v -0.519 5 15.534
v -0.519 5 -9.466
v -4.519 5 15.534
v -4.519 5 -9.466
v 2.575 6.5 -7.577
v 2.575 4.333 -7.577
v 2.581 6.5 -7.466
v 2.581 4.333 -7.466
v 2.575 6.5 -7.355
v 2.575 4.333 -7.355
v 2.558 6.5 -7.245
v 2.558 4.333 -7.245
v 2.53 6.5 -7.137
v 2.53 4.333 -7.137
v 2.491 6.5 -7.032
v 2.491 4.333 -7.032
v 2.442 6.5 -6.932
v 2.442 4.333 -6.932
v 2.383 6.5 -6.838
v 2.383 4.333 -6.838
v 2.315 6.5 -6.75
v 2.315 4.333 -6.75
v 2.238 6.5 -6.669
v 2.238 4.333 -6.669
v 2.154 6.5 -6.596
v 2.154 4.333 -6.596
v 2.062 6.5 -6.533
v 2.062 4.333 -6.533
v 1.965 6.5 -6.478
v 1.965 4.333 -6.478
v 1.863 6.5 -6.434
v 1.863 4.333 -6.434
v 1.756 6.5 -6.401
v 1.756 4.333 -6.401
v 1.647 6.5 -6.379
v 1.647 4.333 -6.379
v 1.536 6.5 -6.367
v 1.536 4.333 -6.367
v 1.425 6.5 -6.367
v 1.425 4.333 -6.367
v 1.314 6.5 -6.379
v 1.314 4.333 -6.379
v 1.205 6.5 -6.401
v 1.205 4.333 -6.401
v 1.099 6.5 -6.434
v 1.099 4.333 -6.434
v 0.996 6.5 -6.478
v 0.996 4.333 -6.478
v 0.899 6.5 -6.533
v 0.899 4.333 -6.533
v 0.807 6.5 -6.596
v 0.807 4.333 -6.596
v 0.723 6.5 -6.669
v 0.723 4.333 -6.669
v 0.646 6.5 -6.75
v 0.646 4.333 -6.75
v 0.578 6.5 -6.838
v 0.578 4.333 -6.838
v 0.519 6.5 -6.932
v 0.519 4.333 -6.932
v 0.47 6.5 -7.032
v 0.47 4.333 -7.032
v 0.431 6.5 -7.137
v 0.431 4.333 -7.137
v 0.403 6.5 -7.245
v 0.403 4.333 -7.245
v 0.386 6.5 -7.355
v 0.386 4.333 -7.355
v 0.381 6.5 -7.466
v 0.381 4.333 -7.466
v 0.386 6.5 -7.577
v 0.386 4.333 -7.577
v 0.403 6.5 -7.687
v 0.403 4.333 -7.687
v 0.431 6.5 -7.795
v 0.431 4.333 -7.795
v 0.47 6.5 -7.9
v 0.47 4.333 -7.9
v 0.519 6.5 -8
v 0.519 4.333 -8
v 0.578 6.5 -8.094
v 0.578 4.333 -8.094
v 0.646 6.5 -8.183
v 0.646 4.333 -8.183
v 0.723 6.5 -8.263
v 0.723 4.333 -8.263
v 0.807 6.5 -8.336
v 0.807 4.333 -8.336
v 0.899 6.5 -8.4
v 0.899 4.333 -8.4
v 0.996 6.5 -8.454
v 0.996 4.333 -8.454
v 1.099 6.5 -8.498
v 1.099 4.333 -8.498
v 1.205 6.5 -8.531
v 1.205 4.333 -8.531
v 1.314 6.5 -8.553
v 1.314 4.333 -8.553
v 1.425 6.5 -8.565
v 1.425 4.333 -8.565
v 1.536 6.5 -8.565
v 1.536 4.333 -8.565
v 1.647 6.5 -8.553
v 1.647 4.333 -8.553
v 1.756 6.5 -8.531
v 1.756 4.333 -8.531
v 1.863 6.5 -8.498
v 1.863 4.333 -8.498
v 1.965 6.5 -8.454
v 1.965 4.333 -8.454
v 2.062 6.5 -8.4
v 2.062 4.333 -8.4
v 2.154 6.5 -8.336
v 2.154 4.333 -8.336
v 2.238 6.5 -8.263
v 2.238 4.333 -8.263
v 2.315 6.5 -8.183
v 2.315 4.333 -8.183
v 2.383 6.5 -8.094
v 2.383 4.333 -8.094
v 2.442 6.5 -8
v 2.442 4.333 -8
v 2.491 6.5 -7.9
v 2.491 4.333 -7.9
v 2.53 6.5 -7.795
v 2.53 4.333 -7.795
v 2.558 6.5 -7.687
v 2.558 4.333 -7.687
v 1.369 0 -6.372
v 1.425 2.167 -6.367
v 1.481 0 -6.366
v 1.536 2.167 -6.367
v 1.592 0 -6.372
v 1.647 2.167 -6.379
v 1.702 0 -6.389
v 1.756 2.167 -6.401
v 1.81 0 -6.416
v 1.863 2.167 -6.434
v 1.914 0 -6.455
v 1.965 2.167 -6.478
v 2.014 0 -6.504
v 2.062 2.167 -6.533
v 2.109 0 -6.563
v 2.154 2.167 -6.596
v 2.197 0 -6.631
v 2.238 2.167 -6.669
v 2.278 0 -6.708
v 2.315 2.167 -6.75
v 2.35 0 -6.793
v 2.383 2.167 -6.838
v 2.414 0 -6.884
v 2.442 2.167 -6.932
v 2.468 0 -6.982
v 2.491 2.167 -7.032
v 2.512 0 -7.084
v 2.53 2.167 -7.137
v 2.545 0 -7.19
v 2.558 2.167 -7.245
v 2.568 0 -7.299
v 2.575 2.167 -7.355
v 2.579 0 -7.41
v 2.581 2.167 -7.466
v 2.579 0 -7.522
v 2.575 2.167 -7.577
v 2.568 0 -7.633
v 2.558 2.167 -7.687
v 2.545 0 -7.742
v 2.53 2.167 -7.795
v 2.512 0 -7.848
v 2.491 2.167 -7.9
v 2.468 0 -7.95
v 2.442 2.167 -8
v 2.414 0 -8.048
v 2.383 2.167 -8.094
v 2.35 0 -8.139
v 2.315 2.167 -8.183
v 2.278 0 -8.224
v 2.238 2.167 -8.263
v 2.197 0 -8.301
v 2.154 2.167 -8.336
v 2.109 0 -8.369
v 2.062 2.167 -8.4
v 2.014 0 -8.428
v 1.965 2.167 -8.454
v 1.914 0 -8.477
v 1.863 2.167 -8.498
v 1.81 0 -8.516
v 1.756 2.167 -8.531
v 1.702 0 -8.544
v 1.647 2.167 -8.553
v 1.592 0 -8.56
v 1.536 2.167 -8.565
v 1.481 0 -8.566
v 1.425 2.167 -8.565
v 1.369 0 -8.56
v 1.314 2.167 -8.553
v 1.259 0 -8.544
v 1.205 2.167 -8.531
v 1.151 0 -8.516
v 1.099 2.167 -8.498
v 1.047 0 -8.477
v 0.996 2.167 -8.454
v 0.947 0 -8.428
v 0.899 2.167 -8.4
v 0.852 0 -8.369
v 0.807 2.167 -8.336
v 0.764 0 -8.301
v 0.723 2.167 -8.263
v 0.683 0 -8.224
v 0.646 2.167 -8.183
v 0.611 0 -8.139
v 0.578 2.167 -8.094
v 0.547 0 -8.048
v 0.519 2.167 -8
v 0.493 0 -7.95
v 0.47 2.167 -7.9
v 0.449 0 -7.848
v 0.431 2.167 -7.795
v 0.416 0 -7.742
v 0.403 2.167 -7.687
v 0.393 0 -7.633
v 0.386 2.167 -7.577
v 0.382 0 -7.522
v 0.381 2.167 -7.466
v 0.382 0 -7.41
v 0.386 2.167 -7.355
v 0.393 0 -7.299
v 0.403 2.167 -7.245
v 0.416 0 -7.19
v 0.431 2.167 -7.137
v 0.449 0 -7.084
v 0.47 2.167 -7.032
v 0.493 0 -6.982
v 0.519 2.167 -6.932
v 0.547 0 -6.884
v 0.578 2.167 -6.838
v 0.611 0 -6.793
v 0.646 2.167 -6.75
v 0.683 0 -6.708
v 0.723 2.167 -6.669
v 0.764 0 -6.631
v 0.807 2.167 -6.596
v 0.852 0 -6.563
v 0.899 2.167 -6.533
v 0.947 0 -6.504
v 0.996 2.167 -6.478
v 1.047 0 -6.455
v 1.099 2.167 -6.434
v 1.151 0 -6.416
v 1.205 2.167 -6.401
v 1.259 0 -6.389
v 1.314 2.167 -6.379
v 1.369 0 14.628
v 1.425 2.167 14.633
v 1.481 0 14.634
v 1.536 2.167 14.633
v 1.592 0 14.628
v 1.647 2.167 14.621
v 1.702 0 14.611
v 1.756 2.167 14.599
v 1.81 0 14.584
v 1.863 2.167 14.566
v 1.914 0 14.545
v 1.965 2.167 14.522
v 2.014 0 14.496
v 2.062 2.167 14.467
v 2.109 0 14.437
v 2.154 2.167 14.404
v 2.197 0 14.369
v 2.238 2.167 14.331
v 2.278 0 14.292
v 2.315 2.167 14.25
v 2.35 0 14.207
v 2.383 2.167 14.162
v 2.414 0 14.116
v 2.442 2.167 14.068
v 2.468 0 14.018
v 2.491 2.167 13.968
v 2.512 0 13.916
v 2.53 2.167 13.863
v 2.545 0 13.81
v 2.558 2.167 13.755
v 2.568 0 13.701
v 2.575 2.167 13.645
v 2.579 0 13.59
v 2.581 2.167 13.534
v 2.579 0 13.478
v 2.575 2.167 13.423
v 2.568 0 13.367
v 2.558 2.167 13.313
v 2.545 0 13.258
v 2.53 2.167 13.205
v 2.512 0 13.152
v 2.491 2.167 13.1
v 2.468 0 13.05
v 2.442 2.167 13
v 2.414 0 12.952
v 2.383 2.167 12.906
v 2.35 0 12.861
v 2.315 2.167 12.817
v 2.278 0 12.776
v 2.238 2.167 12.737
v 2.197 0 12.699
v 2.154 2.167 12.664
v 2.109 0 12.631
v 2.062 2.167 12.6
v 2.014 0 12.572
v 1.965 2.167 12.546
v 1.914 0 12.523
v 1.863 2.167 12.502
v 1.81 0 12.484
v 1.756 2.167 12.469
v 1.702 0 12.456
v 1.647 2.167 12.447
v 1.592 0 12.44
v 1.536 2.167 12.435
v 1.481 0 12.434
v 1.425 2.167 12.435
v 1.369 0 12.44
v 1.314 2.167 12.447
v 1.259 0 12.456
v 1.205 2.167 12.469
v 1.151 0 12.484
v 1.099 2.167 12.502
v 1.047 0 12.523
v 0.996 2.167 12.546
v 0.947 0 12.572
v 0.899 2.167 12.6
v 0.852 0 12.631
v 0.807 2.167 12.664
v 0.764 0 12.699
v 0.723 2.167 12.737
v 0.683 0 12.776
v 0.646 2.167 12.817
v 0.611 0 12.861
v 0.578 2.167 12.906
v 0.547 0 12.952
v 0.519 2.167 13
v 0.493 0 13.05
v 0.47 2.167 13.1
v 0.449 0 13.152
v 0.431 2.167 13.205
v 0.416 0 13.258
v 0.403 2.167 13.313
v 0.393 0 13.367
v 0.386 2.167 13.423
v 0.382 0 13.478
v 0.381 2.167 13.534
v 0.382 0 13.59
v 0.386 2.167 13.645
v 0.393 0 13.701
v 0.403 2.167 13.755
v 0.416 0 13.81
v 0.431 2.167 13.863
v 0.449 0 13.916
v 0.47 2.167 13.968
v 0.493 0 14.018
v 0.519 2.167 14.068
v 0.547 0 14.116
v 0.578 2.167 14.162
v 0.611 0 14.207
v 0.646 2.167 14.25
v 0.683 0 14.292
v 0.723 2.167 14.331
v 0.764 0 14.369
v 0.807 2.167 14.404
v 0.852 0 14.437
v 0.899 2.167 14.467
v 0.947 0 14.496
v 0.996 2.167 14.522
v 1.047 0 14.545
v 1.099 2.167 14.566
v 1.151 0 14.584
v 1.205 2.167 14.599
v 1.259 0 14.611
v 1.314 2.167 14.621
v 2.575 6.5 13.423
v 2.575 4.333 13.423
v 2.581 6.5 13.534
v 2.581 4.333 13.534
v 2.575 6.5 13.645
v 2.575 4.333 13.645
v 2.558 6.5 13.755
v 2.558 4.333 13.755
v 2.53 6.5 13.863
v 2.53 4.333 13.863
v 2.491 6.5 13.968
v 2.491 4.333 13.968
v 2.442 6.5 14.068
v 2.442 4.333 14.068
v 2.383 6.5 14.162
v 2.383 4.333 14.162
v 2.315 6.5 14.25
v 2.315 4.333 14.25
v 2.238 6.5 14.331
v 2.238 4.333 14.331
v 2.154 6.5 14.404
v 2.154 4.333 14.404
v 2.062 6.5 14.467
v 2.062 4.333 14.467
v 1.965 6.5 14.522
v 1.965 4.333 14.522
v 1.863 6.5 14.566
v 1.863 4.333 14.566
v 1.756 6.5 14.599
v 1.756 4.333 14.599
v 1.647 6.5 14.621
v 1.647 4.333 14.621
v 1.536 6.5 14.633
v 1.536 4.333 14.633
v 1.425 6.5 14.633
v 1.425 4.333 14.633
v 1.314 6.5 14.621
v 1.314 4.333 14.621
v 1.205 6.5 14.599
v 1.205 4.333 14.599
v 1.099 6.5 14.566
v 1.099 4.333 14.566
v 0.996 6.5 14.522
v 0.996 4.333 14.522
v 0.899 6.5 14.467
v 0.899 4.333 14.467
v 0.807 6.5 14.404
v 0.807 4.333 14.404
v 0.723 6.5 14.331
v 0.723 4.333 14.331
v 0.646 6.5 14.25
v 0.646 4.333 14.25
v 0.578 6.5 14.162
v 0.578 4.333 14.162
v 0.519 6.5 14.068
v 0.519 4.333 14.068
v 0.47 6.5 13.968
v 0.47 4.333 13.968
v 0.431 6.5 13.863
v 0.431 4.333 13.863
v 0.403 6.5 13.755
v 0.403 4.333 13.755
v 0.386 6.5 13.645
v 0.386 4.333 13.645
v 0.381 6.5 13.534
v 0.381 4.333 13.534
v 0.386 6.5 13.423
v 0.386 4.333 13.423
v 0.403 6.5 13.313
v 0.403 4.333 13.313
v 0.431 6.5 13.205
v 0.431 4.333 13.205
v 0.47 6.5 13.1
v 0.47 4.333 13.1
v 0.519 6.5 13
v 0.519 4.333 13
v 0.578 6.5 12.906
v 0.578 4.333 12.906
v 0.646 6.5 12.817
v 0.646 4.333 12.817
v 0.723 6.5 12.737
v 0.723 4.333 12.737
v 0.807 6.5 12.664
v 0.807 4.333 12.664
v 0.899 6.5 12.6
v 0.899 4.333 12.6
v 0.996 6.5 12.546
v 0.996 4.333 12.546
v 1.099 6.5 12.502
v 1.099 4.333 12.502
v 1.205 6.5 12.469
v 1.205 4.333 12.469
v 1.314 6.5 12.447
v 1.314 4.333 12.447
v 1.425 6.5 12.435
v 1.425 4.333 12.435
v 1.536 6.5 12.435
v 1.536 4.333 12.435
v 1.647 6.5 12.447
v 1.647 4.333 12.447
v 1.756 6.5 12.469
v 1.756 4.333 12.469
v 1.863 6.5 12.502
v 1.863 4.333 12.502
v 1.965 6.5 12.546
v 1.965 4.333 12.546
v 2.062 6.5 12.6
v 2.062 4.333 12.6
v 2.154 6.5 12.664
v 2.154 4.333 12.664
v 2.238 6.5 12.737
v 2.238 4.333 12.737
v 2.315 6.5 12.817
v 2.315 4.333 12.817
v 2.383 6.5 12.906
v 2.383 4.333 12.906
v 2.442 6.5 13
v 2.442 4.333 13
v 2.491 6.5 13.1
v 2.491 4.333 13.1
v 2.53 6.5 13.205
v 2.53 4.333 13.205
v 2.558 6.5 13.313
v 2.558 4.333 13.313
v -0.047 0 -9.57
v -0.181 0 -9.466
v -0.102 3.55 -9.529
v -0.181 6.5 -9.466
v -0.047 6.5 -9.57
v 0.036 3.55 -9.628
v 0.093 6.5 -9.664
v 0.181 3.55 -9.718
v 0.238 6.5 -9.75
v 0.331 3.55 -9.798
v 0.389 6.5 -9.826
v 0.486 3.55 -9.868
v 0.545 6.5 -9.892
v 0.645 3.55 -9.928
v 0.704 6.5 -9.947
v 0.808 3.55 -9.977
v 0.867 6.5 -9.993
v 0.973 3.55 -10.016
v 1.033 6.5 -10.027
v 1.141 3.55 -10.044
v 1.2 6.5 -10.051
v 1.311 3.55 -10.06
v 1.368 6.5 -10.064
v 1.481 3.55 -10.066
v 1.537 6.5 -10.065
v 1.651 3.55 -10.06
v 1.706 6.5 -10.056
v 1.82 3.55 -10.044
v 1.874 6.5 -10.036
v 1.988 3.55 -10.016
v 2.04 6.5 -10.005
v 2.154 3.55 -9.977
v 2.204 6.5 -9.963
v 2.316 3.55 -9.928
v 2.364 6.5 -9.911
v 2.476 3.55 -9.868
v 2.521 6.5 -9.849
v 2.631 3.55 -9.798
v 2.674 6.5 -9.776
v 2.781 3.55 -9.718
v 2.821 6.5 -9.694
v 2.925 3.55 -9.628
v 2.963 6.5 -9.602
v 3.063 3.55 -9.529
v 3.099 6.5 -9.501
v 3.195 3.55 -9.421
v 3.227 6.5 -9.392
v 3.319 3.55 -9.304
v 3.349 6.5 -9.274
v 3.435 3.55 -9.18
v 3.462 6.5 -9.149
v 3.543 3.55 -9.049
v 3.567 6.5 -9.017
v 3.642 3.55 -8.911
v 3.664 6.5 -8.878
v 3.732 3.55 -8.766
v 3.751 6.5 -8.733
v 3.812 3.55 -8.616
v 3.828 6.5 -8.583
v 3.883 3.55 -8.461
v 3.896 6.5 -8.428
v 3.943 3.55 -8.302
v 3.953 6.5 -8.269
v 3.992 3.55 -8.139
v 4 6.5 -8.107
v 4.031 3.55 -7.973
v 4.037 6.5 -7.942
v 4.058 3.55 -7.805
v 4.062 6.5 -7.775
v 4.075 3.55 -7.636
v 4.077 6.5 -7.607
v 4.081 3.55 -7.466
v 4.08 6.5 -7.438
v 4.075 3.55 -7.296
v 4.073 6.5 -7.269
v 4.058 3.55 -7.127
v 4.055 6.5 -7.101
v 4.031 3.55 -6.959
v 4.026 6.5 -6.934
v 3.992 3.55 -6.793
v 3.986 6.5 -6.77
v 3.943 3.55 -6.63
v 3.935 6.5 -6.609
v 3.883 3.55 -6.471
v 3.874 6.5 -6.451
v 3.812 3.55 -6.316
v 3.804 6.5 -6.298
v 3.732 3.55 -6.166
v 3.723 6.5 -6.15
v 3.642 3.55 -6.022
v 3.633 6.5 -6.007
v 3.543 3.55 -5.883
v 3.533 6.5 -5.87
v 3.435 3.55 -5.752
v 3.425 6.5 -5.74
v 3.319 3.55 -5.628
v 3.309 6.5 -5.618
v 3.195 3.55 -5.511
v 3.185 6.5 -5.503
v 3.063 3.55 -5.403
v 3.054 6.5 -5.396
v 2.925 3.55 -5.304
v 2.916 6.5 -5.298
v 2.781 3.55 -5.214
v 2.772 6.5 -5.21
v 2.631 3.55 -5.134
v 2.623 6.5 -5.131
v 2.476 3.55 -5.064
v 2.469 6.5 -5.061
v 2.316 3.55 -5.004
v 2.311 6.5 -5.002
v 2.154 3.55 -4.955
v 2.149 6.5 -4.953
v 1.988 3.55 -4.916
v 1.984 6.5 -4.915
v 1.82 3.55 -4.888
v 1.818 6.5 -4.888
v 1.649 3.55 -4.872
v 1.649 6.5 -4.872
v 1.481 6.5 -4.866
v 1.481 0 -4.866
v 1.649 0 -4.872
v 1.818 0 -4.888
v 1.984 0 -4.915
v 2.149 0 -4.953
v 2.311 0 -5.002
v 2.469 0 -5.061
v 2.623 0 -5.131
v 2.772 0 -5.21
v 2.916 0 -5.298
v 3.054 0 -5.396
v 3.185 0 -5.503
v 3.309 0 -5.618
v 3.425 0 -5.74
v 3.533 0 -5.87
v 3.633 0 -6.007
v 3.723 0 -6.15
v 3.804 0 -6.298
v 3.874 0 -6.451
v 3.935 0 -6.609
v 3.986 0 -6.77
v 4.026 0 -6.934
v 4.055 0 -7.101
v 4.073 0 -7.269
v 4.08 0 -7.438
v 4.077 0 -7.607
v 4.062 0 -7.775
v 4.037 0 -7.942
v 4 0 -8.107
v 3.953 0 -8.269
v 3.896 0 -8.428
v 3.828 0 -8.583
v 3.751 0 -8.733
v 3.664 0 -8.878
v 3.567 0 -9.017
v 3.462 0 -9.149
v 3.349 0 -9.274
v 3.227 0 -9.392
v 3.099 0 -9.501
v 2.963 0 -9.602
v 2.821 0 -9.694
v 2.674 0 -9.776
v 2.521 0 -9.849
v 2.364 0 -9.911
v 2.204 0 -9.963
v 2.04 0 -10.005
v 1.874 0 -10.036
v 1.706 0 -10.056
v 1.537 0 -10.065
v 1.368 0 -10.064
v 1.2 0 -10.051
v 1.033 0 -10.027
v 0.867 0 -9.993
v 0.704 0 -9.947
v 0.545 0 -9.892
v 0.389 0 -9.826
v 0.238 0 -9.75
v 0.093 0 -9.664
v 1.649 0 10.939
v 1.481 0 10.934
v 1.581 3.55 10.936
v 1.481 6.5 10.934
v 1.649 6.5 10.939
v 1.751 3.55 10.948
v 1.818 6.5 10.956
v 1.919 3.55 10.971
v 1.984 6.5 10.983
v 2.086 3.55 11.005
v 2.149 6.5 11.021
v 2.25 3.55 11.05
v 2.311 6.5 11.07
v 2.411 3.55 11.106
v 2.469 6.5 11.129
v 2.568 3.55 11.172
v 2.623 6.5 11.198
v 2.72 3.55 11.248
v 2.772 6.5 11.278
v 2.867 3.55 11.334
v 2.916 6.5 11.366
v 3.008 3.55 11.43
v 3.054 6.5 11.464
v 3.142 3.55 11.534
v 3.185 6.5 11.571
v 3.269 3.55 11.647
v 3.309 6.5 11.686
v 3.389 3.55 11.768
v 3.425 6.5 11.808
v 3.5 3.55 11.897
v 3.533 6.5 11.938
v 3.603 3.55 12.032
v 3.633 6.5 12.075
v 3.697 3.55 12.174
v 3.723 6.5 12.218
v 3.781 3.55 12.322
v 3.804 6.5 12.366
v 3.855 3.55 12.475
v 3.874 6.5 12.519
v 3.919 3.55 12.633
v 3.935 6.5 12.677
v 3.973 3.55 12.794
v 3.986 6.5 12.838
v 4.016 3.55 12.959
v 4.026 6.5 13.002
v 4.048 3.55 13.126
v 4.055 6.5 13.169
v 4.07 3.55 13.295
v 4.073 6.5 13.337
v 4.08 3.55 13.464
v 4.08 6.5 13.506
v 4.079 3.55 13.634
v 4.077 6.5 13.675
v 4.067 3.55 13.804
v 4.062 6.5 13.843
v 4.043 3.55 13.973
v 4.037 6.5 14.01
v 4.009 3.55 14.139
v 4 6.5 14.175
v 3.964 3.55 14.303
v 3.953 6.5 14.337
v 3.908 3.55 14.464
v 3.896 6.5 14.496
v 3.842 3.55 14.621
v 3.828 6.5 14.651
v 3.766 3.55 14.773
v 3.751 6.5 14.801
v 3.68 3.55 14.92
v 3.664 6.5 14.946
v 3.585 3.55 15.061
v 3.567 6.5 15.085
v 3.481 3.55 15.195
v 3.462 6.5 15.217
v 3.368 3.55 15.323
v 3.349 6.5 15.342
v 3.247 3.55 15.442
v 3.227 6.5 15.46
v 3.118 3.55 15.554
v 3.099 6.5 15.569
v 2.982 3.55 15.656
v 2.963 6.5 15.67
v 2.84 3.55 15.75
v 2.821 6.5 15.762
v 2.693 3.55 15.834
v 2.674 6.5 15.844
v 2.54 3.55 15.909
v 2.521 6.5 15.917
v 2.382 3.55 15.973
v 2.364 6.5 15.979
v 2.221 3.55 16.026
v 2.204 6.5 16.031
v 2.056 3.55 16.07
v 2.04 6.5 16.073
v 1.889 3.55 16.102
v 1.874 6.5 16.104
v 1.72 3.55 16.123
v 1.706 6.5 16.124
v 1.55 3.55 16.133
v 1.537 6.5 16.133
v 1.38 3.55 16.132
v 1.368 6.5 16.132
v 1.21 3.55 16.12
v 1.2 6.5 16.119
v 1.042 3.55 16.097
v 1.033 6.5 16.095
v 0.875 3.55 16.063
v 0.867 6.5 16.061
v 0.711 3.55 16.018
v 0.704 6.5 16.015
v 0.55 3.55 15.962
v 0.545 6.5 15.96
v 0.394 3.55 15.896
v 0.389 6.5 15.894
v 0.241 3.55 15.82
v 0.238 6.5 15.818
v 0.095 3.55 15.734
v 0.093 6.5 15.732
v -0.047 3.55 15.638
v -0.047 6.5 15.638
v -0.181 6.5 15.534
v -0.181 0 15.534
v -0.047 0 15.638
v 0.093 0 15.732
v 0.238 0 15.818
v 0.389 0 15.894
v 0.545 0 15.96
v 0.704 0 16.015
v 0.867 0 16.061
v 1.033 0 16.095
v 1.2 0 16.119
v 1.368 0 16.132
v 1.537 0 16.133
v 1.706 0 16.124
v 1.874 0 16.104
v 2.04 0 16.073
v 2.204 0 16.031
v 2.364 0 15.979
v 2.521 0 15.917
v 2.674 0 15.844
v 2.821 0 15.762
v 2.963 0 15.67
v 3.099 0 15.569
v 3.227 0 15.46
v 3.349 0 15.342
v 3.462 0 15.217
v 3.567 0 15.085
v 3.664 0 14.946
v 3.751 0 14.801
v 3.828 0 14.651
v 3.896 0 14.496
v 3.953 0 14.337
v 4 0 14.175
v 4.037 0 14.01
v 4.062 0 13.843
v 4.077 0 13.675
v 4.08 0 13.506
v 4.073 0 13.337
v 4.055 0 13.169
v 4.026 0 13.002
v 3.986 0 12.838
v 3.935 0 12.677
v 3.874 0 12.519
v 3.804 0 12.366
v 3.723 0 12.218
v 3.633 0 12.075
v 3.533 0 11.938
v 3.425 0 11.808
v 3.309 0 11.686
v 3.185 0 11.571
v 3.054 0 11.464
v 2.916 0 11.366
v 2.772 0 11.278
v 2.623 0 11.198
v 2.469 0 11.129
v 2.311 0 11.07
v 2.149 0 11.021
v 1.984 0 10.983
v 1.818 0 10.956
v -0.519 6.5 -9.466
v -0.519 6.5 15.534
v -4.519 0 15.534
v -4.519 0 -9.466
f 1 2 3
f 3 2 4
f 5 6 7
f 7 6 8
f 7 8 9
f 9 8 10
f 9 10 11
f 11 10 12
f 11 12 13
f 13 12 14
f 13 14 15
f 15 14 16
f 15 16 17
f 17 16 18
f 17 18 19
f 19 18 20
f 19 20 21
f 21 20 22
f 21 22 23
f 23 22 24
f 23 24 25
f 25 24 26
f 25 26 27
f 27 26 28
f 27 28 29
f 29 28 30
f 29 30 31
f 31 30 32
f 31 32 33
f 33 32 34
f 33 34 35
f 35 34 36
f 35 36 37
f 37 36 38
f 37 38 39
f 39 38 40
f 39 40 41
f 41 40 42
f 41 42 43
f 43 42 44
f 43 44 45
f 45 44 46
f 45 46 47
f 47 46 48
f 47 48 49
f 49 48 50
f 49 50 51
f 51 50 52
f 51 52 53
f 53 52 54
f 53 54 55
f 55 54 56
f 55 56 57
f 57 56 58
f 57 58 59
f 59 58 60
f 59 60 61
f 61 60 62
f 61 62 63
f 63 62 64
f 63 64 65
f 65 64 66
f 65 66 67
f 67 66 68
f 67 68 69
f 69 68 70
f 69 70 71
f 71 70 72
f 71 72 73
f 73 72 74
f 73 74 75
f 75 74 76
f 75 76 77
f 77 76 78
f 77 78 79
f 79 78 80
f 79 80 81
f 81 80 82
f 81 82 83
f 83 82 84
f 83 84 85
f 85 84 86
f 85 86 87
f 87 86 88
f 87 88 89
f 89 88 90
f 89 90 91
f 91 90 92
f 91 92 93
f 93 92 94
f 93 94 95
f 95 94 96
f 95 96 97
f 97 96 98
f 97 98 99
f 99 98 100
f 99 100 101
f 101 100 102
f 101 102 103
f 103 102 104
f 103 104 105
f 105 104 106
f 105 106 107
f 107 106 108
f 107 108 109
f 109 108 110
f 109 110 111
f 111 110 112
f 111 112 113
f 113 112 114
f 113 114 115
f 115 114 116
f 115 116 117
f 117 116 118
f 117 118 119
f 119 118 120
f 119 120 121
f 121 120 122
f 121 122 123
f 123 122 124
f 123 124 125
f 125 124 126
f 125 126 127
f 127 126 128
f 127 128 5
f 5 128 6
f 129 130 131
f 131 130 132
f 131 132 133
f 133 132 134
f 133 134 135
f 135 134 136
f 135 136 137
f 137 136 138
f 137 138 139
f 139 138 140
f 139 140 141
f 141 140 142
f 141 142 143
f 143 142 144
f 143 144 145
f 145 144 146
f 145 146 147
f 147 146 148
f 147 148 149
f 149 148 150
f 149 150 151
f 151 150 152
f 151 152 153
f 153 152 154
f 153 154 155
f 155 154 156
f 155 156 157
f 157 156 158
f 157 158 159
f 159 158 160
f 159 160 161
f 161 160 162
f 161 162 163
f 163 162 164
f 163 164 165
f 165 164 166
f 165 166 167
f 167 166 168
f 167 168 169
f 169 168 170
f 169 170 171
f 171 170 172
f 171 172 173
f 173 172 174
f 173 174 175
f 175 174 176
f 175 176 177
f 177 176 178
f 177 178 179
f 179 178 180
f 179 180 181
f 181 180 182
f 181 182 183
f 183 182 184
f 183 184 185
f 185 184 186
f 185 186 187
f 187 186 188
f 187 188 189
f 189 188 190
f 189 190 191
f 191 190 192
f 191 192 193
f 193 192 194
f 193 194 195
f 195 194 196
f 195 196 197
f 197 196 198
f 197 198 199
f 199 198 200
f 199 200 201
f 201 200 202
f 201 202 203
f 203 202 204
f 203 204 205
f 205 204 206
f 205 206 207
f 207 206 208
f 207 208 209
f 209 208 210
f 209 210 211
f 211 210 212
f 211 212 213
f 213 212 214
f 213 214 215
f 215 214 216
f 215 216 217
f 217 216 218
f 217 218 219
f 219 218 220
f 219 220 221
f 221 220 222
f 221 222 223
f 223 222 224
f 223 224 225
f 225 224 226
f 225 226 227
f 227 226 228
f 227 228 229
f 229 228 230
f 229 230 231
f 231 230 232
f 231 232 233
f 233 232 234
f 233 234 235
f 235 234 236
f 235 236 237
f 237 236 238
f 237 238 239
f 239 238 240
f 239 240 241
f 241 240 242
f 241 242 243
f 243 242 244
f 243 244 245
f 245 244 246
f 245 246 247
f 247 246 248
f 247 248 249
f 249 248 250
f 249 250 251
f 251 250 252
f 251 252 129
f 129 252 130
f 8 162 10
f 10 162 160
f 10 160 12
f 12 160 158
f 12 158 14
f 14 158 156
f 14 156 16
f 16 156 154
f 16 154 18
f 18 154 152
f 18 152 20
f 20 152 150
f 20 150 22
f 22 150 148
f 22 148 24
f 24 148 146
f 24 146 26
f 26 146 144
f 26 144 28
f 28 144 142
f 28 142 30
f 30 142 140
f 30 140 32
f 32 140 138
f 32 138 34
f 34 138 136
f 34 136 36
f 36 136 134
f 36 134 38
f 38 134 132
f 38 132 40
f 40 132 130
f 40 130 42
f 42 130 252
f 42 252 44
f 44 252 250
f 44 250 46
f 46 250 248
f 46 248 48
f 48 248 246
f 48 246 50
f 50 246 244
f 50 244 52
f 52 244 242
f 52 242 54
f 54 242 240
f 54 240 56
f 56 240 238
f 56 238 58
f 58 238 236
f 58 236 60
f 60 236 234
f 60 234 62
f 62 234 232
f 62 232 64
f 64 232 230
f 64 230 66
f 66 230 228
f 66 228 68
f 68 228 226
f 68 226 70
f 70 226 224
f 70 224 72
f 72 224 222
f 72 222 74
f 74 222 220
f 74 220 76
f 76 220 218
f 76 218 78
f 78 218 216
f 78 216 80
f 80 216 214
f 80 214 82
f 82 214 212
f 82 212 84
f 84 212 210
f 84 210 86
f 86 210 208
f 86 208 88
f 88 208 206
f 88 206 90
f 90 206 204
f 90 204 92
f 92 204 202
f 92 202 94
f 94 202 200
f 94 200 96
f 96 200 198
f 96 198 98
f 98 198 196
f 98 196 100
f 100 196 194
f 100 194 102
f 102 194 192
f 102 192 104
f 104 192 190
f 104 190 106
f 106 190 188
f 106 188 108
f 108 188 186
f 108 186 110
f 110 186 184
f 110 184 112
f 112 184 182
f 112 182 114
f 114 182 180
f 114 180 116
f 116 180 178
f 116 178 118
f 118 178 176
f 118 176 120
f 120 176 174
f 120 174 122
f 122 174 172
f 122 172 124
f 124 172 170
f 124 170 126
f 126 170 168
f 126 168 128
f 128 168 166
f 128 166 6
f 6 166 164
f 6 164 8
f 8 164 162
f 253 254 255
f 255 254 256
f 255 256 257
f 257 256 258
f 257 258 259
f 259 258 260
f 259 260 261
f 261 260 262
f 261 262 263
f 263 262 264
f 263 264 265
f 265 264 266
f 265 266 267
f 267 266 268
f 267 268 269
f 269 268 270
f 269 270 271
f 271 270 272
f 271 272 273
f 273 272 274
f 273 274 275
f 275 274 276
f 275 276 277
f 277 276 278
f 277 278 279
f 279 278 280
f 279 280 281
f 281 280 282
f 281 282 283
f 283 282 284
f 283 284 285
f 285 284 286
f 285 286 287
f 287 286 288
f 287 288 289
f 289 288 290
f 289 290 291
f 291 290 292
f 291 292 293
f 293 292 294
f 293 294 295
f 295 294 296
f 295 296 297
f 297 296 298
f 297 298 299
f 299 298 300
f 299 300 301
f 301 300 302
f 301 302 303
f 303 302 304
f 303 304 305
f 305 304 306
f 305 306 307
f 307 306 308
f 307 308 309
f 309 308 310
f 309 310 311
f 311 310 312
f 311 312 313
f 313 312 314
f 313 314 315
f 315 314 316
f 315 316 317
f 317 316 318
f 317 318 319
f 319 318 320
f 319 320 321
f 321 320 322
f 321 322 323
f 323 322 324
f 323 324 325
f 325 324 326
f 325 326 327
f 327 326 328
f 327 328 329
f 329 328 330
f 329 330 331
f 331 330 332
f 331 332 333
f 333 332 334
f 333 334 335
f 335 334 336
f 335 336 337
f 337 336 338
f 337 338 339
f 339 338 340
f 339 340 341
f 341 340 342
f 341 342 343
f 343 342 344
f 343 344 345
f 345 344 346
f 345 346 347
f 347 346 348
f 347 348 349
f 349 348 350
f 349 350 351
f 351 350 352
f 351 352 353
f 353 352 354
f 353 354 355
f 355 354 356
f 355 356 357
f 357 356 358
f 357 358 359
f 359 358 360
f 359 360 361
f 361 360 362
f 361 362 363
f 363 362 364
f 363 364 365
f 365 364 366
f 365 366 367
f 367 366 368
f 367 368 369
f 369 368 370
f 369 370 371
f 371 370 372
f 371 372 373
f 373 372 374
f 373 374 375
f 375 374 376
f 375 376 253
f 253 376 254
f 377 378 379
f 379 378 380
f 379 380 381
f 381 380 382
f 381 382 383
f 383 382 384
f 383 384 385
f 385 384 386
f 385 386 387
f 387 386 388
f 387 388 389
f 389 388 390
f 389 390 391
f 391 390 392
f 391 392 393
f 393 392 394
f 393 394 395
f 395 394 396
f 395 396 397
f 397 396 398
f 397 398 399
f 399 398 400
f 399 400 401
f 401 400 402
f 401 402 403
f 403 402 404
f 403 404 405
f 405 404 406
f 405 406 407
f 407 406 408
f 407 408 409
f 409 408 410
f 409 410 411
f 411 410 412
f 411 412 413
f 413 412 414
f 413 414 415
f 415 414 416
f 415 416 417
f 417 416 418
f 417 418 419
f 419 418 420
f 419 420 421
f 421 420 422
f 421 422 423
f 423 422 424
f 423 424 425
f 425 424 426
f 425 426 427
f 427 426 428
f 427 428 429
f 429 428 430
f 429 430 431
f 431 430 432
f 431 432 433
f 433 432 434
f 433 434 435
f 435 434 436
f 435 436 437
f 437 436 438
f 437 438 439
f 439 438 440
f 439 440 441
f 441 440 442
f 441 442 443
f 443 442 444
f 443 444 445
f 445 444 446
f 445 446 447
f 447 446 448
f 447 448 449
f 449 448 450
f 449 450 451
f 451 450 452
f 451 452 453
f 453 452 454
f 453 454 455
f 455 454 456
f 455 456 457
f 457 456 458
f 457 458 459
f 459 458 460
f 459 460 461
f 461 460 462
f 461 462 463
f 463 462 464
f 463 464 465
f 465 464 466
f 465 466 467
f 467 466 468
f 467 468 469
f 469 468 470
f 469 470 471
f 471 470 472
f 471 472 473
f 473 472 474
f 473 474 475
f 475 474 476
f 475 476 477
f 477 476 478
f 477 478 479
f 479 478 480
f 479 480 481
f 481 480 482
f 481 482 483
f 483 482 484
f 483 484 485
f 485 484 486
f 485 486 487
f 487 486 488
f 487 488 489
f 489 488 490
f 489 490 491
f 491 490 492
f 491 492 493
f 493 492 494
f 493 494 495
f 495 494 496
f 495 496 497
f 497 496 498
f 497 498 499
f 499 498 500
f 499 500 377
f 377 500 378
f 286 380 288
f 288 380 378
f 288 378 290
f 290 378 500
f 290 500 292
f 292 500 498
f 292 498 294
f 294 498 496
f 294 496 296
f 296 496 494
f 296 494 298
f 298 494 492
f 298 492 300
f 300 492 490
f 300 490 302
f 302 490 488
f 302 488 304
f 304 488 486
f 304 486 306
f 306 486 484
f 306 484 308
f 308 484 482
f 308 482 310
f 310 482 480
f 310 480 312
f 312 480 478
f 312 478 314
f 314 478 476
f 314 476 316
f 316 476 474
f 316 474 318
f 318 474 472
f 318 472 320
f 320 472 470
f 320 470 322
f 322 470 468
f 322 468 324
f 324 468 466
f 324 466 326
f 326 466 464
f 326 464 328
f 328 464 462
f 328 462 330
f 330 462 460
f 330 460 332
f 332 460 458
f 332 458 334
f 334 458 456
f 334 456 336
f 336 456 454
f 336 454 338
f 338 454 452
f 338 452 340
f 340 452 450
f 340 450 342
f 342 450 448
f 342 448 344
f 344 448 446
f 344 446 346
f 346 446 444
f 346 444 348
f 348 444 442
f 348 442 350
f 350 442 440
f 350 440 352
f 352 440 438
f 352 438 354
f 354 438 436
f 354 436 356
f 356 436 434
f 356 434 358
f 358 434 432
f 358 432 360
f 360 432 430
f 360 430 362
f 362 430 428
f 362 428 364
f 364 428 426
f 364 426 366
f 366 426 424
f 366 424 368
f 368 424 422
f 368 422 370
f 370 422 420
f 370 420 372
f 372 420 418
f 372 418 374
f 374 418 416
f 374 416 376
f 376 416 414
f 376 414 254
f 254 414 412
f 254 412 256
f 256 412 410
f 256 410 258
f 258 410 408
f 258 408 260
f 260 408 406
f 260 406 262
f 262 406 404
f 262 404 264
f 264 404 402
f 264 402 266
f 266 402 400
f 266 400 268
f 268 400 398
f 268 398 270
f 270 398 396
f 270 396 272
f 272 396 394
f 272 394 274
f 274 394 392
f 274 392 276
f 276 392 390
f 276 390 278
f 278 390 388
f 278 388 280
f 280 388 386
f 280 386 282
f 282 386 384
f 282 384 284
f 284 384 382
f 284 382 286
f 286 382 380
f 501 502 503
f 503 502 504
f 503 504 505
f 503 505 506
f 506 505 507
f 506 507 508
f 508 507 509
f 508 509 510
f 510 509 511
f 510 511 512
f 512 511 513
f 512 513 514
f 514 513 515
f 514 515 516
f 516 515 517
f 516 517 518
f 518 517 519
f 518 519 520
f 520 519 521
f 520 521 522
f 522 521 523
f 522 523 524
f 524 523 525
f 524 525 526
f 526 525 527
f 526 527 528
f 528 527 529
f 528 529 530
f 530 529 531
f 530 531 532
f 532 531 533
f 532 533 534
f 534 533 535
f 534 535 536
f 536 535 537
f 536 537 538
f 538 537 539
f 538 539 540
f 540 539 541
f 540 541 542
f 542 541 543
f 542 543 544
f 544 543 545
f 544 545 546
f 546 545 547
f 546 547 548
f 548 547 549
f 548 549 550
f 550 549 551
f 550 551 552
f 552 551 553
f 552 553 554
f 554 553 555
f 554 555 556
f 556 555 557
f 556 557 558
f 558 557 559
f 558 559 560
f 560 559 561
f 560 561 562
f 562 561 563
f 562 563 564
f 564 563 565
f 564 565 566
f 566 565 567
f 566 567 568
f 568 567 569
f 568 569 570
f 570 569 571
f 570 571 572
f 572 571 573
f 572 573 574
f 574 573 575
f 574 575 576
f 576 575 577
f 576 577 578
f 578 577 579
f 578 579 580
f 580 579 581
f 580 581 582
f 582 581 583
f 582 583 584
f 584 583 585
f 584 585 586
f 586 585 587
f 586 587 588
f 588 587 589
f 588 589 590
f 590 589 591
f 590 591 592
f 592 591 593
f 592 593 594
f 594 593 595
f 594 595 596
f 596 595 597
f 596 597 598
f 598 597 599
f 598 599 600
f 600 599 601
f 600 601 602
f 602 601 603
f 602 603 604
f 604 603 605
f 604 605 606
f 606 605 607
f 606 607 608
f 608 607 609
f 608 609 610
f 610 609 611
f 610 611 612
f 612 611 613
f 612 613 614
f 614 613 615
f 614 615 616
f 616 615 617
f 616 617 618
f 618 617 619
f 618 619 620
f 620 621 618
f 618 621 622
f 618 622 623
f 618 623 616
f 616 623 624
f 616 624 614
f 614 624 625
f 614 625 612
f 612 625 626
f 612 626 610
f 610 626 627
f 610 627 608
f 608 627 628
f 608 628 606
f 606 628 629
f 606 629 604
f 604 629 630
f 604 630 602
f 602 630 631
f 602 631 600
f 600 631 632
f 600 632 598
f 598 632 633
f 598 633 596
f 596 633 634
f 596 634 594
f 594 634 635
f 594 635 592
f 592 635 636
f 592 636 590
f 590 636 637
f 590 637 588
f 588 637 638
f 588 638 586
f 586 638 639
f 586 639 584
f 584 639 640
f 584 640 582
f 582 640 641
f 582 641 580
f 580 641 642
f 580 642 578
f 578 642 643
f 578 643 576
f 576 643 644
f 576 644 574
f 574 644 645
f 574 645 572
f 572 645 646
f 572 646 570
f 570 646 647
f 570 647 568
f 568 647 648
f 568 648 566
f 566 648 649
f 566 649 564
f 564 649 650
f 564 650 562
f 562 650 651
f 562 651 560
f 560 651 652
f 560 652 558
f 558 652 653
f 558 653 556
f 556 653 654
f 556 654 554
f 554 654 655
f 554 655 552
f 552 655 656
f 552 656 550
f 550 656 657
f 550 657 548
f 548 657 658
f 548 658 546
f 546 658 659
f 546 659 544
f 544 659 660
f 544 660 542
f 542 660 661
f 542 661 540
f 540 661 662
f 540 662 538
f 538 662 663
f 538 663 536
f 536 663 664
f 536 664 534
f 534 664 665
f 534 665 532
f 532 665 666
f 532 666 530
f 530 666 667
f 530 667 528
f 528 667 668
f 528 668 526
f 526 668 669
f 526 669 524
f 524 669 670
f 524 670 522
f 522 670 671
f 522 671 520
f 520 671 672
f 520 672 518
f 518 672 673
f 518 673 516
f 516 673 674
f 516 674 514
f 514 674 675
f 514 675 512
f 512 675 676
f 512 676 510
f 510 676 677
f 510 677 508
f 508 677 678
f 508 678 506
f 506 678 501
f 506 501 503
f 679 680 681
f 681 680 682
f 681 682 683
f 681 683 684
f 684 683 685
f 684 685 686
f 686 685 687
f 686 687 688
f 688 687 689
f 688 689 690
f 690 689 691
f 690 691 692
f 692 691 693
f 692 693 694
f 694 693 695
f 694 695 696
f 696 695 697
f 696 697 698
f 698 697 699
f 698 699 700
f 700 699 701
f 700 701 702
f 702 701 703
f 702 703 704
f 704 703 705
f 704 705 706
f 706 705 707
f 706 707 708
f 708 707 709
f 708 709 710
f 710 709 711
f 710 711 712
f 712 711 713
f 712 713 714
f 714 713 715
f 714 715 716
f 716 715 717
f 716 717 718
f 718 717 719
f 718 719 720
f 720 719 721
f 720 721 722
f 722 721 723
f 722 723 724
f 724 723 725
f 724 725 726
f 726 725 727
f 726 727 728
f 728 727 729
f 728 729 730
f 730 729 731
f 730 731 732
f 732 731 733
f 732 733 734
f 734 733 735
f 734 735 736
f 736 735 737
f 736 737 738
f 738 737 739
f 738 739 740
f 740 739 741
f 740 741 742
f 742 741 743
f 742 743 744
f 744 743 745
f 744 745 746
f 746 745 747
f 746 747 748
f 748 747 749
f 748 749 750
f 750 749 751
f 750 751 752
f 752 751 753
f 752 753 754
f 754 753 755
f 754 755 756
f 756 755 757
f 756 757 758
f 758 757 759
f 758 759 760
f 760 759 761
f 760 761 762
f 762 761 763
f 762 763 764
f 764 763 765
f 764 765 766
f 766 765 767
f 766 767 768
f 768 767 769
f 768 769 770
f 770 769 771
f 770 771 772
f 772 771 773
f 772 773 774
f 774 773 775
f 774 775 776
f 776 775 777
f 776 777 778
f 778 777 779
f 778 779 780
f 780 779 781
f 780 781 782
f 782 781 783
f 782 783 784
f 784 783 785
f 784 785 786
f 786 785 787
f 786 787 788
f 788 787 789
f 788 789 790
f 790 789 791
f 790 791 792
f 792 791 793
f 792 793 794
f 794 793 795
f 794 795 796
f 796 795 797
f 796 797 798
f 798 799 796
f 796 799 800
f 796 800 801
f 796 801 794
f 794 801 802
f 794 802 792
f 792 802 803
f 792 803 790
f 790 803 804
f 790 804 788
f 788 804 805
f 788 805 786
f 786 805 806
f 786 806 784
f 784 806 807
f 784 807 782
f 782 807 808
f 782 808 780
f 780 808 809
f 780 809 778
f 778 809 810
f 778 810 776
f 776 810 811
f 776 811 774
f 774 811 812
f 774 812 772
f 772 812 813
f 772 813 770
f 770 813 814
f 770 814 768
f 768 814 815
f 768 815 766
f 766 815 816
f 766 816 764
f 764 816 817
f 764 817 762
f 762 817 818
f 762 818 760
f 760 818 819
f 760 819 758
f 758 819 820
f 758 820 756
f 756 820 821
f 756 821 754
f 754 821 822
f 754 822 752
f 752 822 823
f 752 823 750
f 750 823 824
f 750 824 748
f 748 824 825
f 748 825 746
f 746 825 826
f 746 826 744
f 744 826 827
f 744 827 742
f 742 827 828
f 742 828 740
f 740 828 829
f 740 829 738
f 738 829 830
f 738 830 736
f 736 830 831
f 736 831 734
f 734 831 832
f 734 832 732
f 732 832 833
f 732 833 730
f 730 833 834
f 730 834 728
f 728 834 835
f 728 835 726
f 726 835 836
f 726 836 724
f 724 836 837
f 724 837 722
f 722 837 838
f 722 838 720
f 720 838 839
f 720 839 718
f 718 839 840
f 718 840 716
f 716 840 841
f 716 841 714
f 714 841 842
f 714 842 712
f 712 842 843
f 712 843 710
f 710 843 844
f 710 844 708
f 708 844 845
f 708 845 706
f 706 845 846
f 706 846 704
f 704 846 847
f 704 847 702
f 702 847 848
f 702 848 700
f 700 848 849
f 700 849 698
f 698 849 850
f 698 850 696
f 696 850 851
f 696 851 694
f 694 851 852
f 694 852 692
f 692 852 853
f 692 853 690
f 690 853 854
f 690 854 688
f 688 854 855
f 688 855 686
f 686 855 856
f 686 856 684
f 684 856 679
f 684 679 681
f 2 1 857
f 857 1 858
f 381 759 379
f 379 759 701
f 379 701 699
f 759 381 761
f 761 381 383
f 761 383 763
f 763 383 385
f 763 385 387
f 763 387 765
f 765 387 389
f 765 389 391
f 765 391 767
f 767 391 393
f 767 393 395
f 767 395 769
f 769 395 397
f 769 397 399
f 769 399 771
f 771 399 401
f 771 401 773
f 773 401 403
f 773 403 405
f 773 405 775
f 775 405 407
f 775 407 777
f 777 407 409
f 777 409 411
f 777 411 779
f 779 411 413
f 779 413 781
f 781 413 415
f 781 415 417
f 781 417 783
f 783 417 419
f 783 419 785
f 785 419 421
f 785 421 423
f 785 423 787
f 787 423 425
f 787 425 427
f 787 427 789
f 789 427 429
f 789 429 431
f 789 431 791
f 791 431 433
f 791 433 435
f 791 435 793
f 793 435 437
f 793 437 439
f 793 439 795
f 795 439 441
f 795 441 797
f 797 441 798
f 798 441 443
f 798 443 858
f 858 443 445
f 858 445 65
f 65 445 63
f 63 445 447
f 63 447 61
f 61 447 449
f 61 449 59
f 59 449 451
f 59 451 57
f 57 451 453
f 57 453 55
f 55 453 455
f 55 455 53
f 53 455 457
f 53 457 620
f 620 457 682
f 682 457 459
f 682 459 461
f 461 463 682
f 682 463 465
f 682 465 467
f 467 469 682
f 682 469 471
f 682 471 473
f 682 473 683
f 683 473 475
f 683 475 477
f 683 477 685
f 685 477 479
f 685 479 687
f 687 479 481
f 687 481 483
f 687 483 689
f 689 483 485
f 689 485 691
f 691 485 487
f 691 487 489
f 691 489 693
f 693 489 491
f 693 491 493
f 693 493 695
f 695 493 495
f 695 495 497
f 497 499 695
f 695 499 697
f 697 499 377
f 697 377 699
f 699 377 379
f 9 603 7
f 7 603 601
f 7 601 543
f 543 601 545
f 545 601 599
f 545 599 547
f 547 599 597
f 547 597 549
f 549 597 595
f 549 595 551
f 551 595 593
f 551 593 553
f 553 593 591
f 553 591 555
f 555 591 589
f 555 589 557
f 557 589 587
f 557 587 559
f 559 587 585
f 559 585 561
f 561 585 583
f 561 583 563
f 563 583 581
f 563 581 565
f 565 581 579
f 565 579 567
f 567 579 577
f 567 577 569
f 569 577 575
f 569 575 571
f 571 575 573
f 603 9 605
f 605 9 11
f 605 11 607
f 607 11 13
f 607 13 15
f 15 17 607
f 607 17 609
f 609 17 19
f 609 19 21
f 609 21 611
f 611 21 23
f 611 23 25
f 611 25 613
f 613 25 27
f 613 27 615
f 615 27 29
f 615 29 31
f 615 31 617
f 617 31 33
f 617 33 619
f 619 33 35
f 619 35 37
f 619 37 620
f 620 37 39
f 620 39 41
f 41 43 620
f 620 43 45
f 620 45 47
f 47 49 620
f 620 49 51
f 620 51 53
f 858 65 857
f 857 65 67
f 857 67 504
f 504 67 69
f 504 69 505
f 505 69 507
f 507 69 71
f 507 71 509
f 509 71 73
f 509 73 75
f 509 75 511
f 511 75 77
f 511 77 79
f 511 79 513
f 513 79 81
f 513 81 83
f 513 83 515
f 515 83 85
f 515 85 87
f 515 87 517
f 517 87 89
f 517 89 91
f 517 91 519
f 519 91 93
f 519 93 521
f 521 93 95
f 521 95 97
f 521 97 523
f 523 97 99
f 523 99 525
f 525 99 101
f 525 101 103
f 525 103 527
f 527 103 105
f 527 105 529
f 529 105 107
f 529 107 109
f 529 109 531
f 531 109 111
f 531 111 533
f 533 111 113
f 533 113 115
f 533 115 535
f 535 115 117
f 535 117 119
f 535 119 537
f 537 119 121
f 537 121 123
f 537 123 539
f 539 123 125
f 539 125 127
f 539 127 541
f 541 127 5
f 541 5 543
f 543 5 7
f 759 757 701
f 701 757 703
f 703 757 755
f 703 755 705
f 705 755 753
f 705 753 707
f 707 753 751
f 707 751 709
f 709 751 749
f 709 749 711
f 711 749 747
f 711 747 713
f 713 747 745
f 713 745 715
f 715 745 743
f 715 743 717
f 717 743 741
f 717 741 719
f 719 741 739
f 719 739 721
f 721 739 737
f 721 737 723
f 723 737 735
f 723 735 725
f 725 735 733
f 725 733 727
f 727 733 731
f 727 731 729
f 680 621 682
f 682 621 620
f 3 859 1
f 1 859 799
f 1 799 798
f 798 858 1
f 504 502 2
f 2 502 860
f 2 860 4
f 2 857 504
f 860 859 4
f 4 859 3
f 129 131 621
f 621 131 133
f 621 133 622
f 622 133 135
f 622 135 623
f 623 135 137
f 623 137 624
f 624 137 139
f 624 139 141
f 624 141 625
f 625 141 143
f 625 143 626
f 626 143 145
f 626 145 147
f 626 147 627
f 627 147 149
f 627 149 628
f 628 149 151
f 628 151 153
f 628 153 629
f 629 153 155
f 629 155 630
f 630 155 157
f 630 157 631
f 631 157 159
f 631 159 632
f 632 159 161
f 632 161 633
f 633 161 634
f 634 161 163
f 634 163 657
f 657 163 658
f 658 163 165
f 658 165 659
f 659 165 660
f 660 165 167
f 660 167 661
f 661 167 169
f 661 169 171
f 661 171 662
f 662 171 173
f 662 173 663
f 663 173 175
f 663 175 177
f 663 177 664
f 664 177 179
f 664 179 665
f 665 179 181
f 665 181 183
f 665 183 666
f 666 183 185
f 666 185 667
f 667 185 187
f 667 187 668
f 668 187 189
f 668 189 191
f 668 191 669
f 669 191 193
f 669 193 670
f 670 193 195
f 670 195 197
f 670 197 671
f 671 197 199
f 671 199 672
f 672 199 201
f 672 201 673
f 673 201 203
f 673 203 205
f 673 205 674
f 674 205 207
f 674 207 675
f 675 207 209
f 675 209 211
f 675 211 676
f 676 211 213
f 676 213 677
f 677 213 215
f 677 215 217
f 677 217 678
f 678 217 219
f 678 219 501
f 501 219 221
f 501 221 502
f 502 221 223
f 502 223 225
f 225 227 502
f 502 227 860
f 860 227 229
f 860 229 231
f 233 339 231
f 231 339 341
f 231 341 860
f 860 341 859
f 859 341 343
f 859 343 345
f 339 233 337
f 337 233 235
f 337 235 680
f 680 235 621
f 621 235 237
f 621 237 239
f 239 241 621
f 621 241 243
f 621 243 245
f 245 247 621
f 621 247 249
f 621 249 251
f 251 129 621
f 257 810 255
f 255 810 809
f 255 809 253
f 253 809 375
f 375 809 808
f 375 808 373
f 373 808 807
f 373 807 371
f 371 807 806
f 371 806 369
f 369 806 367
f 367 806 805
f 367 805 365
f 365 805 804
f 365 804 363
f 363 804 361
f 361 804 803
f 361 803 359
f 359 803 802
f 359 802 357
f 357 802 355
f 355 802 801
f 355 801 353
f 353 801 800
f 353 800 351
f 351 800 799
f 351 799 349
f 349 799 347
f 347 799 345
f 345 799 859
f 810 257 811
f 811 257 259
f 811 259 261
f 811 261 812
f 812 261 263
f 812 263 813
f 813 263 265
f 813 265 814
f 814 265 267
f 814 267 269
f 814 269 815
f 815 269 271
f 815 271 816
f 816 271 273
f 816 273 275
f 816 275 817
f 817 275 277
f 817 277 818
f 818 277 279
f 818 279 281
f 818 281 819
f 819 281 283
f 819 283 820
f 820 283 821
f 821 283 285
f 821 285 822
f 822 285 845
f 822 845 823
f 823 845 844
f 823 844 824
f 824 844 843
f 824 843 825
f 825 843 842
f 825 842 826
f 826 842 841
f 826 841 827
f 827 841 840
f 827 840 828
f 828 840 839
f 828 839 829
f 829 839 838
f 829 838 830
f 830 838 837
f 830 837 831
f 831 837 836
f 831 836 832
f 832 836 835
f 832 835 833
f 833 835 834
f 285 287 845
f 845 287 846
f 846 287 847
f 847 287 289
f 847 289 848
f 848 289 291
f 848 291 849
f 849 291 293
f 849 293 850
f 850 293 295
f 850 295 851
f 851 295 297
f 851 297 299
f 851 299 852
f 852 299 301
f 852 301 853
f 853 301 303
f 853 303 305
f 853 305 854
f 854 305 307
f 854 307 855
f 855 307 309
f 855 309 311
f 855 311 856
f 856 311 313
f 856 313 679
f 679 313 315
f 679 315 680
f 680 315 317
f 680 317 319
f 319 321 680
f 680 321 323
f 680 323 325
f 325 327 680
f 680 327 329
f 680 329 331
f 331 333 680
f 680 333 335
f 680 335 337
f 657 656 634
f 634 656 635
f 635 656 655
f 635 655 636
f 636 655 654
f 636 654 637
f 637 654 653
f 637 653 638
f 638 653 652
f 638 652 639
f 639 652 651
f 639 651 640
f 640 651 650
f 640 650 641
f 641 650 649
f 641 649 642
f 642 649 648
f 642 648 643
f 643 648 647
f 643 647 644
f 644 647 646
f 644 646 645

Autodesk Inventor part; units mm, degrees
ref_plane "YZ Plane" through (0, 0, 0) normal (1, 0, 0) x (0, 1, 0)
ref_plane "XZ Plane" through (0, 0, 0) normal (0, 1, 0) x (-1, 0, 0)
ref_plane "XY Plane" through (0, 0, 0) normal (0, 0, 1) x (1, 0, 0)
sketch "Sketch1" plane through (0, 0, 0) normal (0, 1, 0) x (-1, 0, 0)
  line L0 (4.5194, 15.534) -> (-1.4806, 15.534)
  line L1 (-1.4806, 15.534) -> (-1.4806, -9.466)
  line L2 (-1.4806, -9.466) -> (4.5194, -9.466)
  line L3 (4.5194, -9.466) -> (4.5194, 15.534)
  point P0 (0, 0)
  dimension "d0" = 25
  dimension "d1" = 6
extrude "Extrusion1" add sketch "Sketch1" along normal blind 4.5
sketch "Sketch2" plane through (0, 4.5, 0) normal (0, 1, 0) x (1, 0, 0)
  line L0 (1.4806, -15.534) -> (1.4806, 9.466) projected
  line L1 (-4.5194, -15.534) -> (1.4806, -15.534) projected
  line L2 (-0.1807, 9.466) -> (-0.5194, 9.466)
  line L3 (-0.5194, 9.466) -> (-0.5194, -15.534)
  line L4 (-0.5194, -15.534) -> (-0.1807, -15.534)
  circle A0 centre (1.4806, 7.466) radius 1.1
  circle A1 centre (1.4806, -13.534) radius 1.1
  arc A2 (-0.1807, -15.534) -> (1.4806, -10.934) centre (1.4806, -13.534) ccw
  arc A3 (1.4806, 4.866) -> (-0.1807, 9.466) centre (1.4806, 7.466) ccw
  line L5 (1.4806, -10.934) -> (1.4806, 4.866)
  point P0 (0, 0)
  point P1 (1.4806, 10.066)
  point P2 (1.4806, -16.134)
  dimension "d4" = 2
  dimension "d5" = 2.2
  dimension "d6" = 0
  dimension "d8" = 2
  dimension "d9" = 2.2
  dimension "d10" = 0
  dimension "d11" = 2
  dimension "d17" = 1.5
  dimension "d18" = 1.5
extrude "Extrusion3" add sketch "Sketch2" along normal blind 2 and the other way blind 4.5 contours L0 A1 L1 L3 L2 A3 | A2 L1 L0 A1
extrude "Extrusion4" cut sketch "Sketch2" along normal through all both and the other way through all contours A0 L0 | L0 A0 | A1 L0 | L0 A1
sketch "Sketch3" plane through (0, 4.5, 0) normal (0, 1, 0) x (1, 0, 0)
  line L0 (-0.5194, -15.534) -> (-0.5194, 9.466) projected
  line L1 (-0.5194, 9.466) -> (-4.5194, 9.466) projected
  line L2 (-4.5194, 9.466) -> (-4.5194, -15.534) projected
  line L3 (-4.5194, -15.534) -> (-0.5194, -15.534) projected
  point P0 (0, 0)
extrude "Extrusion5" add sketch "Sketch3" along normal blind 0.5
properties part number "rectSotto_board"
